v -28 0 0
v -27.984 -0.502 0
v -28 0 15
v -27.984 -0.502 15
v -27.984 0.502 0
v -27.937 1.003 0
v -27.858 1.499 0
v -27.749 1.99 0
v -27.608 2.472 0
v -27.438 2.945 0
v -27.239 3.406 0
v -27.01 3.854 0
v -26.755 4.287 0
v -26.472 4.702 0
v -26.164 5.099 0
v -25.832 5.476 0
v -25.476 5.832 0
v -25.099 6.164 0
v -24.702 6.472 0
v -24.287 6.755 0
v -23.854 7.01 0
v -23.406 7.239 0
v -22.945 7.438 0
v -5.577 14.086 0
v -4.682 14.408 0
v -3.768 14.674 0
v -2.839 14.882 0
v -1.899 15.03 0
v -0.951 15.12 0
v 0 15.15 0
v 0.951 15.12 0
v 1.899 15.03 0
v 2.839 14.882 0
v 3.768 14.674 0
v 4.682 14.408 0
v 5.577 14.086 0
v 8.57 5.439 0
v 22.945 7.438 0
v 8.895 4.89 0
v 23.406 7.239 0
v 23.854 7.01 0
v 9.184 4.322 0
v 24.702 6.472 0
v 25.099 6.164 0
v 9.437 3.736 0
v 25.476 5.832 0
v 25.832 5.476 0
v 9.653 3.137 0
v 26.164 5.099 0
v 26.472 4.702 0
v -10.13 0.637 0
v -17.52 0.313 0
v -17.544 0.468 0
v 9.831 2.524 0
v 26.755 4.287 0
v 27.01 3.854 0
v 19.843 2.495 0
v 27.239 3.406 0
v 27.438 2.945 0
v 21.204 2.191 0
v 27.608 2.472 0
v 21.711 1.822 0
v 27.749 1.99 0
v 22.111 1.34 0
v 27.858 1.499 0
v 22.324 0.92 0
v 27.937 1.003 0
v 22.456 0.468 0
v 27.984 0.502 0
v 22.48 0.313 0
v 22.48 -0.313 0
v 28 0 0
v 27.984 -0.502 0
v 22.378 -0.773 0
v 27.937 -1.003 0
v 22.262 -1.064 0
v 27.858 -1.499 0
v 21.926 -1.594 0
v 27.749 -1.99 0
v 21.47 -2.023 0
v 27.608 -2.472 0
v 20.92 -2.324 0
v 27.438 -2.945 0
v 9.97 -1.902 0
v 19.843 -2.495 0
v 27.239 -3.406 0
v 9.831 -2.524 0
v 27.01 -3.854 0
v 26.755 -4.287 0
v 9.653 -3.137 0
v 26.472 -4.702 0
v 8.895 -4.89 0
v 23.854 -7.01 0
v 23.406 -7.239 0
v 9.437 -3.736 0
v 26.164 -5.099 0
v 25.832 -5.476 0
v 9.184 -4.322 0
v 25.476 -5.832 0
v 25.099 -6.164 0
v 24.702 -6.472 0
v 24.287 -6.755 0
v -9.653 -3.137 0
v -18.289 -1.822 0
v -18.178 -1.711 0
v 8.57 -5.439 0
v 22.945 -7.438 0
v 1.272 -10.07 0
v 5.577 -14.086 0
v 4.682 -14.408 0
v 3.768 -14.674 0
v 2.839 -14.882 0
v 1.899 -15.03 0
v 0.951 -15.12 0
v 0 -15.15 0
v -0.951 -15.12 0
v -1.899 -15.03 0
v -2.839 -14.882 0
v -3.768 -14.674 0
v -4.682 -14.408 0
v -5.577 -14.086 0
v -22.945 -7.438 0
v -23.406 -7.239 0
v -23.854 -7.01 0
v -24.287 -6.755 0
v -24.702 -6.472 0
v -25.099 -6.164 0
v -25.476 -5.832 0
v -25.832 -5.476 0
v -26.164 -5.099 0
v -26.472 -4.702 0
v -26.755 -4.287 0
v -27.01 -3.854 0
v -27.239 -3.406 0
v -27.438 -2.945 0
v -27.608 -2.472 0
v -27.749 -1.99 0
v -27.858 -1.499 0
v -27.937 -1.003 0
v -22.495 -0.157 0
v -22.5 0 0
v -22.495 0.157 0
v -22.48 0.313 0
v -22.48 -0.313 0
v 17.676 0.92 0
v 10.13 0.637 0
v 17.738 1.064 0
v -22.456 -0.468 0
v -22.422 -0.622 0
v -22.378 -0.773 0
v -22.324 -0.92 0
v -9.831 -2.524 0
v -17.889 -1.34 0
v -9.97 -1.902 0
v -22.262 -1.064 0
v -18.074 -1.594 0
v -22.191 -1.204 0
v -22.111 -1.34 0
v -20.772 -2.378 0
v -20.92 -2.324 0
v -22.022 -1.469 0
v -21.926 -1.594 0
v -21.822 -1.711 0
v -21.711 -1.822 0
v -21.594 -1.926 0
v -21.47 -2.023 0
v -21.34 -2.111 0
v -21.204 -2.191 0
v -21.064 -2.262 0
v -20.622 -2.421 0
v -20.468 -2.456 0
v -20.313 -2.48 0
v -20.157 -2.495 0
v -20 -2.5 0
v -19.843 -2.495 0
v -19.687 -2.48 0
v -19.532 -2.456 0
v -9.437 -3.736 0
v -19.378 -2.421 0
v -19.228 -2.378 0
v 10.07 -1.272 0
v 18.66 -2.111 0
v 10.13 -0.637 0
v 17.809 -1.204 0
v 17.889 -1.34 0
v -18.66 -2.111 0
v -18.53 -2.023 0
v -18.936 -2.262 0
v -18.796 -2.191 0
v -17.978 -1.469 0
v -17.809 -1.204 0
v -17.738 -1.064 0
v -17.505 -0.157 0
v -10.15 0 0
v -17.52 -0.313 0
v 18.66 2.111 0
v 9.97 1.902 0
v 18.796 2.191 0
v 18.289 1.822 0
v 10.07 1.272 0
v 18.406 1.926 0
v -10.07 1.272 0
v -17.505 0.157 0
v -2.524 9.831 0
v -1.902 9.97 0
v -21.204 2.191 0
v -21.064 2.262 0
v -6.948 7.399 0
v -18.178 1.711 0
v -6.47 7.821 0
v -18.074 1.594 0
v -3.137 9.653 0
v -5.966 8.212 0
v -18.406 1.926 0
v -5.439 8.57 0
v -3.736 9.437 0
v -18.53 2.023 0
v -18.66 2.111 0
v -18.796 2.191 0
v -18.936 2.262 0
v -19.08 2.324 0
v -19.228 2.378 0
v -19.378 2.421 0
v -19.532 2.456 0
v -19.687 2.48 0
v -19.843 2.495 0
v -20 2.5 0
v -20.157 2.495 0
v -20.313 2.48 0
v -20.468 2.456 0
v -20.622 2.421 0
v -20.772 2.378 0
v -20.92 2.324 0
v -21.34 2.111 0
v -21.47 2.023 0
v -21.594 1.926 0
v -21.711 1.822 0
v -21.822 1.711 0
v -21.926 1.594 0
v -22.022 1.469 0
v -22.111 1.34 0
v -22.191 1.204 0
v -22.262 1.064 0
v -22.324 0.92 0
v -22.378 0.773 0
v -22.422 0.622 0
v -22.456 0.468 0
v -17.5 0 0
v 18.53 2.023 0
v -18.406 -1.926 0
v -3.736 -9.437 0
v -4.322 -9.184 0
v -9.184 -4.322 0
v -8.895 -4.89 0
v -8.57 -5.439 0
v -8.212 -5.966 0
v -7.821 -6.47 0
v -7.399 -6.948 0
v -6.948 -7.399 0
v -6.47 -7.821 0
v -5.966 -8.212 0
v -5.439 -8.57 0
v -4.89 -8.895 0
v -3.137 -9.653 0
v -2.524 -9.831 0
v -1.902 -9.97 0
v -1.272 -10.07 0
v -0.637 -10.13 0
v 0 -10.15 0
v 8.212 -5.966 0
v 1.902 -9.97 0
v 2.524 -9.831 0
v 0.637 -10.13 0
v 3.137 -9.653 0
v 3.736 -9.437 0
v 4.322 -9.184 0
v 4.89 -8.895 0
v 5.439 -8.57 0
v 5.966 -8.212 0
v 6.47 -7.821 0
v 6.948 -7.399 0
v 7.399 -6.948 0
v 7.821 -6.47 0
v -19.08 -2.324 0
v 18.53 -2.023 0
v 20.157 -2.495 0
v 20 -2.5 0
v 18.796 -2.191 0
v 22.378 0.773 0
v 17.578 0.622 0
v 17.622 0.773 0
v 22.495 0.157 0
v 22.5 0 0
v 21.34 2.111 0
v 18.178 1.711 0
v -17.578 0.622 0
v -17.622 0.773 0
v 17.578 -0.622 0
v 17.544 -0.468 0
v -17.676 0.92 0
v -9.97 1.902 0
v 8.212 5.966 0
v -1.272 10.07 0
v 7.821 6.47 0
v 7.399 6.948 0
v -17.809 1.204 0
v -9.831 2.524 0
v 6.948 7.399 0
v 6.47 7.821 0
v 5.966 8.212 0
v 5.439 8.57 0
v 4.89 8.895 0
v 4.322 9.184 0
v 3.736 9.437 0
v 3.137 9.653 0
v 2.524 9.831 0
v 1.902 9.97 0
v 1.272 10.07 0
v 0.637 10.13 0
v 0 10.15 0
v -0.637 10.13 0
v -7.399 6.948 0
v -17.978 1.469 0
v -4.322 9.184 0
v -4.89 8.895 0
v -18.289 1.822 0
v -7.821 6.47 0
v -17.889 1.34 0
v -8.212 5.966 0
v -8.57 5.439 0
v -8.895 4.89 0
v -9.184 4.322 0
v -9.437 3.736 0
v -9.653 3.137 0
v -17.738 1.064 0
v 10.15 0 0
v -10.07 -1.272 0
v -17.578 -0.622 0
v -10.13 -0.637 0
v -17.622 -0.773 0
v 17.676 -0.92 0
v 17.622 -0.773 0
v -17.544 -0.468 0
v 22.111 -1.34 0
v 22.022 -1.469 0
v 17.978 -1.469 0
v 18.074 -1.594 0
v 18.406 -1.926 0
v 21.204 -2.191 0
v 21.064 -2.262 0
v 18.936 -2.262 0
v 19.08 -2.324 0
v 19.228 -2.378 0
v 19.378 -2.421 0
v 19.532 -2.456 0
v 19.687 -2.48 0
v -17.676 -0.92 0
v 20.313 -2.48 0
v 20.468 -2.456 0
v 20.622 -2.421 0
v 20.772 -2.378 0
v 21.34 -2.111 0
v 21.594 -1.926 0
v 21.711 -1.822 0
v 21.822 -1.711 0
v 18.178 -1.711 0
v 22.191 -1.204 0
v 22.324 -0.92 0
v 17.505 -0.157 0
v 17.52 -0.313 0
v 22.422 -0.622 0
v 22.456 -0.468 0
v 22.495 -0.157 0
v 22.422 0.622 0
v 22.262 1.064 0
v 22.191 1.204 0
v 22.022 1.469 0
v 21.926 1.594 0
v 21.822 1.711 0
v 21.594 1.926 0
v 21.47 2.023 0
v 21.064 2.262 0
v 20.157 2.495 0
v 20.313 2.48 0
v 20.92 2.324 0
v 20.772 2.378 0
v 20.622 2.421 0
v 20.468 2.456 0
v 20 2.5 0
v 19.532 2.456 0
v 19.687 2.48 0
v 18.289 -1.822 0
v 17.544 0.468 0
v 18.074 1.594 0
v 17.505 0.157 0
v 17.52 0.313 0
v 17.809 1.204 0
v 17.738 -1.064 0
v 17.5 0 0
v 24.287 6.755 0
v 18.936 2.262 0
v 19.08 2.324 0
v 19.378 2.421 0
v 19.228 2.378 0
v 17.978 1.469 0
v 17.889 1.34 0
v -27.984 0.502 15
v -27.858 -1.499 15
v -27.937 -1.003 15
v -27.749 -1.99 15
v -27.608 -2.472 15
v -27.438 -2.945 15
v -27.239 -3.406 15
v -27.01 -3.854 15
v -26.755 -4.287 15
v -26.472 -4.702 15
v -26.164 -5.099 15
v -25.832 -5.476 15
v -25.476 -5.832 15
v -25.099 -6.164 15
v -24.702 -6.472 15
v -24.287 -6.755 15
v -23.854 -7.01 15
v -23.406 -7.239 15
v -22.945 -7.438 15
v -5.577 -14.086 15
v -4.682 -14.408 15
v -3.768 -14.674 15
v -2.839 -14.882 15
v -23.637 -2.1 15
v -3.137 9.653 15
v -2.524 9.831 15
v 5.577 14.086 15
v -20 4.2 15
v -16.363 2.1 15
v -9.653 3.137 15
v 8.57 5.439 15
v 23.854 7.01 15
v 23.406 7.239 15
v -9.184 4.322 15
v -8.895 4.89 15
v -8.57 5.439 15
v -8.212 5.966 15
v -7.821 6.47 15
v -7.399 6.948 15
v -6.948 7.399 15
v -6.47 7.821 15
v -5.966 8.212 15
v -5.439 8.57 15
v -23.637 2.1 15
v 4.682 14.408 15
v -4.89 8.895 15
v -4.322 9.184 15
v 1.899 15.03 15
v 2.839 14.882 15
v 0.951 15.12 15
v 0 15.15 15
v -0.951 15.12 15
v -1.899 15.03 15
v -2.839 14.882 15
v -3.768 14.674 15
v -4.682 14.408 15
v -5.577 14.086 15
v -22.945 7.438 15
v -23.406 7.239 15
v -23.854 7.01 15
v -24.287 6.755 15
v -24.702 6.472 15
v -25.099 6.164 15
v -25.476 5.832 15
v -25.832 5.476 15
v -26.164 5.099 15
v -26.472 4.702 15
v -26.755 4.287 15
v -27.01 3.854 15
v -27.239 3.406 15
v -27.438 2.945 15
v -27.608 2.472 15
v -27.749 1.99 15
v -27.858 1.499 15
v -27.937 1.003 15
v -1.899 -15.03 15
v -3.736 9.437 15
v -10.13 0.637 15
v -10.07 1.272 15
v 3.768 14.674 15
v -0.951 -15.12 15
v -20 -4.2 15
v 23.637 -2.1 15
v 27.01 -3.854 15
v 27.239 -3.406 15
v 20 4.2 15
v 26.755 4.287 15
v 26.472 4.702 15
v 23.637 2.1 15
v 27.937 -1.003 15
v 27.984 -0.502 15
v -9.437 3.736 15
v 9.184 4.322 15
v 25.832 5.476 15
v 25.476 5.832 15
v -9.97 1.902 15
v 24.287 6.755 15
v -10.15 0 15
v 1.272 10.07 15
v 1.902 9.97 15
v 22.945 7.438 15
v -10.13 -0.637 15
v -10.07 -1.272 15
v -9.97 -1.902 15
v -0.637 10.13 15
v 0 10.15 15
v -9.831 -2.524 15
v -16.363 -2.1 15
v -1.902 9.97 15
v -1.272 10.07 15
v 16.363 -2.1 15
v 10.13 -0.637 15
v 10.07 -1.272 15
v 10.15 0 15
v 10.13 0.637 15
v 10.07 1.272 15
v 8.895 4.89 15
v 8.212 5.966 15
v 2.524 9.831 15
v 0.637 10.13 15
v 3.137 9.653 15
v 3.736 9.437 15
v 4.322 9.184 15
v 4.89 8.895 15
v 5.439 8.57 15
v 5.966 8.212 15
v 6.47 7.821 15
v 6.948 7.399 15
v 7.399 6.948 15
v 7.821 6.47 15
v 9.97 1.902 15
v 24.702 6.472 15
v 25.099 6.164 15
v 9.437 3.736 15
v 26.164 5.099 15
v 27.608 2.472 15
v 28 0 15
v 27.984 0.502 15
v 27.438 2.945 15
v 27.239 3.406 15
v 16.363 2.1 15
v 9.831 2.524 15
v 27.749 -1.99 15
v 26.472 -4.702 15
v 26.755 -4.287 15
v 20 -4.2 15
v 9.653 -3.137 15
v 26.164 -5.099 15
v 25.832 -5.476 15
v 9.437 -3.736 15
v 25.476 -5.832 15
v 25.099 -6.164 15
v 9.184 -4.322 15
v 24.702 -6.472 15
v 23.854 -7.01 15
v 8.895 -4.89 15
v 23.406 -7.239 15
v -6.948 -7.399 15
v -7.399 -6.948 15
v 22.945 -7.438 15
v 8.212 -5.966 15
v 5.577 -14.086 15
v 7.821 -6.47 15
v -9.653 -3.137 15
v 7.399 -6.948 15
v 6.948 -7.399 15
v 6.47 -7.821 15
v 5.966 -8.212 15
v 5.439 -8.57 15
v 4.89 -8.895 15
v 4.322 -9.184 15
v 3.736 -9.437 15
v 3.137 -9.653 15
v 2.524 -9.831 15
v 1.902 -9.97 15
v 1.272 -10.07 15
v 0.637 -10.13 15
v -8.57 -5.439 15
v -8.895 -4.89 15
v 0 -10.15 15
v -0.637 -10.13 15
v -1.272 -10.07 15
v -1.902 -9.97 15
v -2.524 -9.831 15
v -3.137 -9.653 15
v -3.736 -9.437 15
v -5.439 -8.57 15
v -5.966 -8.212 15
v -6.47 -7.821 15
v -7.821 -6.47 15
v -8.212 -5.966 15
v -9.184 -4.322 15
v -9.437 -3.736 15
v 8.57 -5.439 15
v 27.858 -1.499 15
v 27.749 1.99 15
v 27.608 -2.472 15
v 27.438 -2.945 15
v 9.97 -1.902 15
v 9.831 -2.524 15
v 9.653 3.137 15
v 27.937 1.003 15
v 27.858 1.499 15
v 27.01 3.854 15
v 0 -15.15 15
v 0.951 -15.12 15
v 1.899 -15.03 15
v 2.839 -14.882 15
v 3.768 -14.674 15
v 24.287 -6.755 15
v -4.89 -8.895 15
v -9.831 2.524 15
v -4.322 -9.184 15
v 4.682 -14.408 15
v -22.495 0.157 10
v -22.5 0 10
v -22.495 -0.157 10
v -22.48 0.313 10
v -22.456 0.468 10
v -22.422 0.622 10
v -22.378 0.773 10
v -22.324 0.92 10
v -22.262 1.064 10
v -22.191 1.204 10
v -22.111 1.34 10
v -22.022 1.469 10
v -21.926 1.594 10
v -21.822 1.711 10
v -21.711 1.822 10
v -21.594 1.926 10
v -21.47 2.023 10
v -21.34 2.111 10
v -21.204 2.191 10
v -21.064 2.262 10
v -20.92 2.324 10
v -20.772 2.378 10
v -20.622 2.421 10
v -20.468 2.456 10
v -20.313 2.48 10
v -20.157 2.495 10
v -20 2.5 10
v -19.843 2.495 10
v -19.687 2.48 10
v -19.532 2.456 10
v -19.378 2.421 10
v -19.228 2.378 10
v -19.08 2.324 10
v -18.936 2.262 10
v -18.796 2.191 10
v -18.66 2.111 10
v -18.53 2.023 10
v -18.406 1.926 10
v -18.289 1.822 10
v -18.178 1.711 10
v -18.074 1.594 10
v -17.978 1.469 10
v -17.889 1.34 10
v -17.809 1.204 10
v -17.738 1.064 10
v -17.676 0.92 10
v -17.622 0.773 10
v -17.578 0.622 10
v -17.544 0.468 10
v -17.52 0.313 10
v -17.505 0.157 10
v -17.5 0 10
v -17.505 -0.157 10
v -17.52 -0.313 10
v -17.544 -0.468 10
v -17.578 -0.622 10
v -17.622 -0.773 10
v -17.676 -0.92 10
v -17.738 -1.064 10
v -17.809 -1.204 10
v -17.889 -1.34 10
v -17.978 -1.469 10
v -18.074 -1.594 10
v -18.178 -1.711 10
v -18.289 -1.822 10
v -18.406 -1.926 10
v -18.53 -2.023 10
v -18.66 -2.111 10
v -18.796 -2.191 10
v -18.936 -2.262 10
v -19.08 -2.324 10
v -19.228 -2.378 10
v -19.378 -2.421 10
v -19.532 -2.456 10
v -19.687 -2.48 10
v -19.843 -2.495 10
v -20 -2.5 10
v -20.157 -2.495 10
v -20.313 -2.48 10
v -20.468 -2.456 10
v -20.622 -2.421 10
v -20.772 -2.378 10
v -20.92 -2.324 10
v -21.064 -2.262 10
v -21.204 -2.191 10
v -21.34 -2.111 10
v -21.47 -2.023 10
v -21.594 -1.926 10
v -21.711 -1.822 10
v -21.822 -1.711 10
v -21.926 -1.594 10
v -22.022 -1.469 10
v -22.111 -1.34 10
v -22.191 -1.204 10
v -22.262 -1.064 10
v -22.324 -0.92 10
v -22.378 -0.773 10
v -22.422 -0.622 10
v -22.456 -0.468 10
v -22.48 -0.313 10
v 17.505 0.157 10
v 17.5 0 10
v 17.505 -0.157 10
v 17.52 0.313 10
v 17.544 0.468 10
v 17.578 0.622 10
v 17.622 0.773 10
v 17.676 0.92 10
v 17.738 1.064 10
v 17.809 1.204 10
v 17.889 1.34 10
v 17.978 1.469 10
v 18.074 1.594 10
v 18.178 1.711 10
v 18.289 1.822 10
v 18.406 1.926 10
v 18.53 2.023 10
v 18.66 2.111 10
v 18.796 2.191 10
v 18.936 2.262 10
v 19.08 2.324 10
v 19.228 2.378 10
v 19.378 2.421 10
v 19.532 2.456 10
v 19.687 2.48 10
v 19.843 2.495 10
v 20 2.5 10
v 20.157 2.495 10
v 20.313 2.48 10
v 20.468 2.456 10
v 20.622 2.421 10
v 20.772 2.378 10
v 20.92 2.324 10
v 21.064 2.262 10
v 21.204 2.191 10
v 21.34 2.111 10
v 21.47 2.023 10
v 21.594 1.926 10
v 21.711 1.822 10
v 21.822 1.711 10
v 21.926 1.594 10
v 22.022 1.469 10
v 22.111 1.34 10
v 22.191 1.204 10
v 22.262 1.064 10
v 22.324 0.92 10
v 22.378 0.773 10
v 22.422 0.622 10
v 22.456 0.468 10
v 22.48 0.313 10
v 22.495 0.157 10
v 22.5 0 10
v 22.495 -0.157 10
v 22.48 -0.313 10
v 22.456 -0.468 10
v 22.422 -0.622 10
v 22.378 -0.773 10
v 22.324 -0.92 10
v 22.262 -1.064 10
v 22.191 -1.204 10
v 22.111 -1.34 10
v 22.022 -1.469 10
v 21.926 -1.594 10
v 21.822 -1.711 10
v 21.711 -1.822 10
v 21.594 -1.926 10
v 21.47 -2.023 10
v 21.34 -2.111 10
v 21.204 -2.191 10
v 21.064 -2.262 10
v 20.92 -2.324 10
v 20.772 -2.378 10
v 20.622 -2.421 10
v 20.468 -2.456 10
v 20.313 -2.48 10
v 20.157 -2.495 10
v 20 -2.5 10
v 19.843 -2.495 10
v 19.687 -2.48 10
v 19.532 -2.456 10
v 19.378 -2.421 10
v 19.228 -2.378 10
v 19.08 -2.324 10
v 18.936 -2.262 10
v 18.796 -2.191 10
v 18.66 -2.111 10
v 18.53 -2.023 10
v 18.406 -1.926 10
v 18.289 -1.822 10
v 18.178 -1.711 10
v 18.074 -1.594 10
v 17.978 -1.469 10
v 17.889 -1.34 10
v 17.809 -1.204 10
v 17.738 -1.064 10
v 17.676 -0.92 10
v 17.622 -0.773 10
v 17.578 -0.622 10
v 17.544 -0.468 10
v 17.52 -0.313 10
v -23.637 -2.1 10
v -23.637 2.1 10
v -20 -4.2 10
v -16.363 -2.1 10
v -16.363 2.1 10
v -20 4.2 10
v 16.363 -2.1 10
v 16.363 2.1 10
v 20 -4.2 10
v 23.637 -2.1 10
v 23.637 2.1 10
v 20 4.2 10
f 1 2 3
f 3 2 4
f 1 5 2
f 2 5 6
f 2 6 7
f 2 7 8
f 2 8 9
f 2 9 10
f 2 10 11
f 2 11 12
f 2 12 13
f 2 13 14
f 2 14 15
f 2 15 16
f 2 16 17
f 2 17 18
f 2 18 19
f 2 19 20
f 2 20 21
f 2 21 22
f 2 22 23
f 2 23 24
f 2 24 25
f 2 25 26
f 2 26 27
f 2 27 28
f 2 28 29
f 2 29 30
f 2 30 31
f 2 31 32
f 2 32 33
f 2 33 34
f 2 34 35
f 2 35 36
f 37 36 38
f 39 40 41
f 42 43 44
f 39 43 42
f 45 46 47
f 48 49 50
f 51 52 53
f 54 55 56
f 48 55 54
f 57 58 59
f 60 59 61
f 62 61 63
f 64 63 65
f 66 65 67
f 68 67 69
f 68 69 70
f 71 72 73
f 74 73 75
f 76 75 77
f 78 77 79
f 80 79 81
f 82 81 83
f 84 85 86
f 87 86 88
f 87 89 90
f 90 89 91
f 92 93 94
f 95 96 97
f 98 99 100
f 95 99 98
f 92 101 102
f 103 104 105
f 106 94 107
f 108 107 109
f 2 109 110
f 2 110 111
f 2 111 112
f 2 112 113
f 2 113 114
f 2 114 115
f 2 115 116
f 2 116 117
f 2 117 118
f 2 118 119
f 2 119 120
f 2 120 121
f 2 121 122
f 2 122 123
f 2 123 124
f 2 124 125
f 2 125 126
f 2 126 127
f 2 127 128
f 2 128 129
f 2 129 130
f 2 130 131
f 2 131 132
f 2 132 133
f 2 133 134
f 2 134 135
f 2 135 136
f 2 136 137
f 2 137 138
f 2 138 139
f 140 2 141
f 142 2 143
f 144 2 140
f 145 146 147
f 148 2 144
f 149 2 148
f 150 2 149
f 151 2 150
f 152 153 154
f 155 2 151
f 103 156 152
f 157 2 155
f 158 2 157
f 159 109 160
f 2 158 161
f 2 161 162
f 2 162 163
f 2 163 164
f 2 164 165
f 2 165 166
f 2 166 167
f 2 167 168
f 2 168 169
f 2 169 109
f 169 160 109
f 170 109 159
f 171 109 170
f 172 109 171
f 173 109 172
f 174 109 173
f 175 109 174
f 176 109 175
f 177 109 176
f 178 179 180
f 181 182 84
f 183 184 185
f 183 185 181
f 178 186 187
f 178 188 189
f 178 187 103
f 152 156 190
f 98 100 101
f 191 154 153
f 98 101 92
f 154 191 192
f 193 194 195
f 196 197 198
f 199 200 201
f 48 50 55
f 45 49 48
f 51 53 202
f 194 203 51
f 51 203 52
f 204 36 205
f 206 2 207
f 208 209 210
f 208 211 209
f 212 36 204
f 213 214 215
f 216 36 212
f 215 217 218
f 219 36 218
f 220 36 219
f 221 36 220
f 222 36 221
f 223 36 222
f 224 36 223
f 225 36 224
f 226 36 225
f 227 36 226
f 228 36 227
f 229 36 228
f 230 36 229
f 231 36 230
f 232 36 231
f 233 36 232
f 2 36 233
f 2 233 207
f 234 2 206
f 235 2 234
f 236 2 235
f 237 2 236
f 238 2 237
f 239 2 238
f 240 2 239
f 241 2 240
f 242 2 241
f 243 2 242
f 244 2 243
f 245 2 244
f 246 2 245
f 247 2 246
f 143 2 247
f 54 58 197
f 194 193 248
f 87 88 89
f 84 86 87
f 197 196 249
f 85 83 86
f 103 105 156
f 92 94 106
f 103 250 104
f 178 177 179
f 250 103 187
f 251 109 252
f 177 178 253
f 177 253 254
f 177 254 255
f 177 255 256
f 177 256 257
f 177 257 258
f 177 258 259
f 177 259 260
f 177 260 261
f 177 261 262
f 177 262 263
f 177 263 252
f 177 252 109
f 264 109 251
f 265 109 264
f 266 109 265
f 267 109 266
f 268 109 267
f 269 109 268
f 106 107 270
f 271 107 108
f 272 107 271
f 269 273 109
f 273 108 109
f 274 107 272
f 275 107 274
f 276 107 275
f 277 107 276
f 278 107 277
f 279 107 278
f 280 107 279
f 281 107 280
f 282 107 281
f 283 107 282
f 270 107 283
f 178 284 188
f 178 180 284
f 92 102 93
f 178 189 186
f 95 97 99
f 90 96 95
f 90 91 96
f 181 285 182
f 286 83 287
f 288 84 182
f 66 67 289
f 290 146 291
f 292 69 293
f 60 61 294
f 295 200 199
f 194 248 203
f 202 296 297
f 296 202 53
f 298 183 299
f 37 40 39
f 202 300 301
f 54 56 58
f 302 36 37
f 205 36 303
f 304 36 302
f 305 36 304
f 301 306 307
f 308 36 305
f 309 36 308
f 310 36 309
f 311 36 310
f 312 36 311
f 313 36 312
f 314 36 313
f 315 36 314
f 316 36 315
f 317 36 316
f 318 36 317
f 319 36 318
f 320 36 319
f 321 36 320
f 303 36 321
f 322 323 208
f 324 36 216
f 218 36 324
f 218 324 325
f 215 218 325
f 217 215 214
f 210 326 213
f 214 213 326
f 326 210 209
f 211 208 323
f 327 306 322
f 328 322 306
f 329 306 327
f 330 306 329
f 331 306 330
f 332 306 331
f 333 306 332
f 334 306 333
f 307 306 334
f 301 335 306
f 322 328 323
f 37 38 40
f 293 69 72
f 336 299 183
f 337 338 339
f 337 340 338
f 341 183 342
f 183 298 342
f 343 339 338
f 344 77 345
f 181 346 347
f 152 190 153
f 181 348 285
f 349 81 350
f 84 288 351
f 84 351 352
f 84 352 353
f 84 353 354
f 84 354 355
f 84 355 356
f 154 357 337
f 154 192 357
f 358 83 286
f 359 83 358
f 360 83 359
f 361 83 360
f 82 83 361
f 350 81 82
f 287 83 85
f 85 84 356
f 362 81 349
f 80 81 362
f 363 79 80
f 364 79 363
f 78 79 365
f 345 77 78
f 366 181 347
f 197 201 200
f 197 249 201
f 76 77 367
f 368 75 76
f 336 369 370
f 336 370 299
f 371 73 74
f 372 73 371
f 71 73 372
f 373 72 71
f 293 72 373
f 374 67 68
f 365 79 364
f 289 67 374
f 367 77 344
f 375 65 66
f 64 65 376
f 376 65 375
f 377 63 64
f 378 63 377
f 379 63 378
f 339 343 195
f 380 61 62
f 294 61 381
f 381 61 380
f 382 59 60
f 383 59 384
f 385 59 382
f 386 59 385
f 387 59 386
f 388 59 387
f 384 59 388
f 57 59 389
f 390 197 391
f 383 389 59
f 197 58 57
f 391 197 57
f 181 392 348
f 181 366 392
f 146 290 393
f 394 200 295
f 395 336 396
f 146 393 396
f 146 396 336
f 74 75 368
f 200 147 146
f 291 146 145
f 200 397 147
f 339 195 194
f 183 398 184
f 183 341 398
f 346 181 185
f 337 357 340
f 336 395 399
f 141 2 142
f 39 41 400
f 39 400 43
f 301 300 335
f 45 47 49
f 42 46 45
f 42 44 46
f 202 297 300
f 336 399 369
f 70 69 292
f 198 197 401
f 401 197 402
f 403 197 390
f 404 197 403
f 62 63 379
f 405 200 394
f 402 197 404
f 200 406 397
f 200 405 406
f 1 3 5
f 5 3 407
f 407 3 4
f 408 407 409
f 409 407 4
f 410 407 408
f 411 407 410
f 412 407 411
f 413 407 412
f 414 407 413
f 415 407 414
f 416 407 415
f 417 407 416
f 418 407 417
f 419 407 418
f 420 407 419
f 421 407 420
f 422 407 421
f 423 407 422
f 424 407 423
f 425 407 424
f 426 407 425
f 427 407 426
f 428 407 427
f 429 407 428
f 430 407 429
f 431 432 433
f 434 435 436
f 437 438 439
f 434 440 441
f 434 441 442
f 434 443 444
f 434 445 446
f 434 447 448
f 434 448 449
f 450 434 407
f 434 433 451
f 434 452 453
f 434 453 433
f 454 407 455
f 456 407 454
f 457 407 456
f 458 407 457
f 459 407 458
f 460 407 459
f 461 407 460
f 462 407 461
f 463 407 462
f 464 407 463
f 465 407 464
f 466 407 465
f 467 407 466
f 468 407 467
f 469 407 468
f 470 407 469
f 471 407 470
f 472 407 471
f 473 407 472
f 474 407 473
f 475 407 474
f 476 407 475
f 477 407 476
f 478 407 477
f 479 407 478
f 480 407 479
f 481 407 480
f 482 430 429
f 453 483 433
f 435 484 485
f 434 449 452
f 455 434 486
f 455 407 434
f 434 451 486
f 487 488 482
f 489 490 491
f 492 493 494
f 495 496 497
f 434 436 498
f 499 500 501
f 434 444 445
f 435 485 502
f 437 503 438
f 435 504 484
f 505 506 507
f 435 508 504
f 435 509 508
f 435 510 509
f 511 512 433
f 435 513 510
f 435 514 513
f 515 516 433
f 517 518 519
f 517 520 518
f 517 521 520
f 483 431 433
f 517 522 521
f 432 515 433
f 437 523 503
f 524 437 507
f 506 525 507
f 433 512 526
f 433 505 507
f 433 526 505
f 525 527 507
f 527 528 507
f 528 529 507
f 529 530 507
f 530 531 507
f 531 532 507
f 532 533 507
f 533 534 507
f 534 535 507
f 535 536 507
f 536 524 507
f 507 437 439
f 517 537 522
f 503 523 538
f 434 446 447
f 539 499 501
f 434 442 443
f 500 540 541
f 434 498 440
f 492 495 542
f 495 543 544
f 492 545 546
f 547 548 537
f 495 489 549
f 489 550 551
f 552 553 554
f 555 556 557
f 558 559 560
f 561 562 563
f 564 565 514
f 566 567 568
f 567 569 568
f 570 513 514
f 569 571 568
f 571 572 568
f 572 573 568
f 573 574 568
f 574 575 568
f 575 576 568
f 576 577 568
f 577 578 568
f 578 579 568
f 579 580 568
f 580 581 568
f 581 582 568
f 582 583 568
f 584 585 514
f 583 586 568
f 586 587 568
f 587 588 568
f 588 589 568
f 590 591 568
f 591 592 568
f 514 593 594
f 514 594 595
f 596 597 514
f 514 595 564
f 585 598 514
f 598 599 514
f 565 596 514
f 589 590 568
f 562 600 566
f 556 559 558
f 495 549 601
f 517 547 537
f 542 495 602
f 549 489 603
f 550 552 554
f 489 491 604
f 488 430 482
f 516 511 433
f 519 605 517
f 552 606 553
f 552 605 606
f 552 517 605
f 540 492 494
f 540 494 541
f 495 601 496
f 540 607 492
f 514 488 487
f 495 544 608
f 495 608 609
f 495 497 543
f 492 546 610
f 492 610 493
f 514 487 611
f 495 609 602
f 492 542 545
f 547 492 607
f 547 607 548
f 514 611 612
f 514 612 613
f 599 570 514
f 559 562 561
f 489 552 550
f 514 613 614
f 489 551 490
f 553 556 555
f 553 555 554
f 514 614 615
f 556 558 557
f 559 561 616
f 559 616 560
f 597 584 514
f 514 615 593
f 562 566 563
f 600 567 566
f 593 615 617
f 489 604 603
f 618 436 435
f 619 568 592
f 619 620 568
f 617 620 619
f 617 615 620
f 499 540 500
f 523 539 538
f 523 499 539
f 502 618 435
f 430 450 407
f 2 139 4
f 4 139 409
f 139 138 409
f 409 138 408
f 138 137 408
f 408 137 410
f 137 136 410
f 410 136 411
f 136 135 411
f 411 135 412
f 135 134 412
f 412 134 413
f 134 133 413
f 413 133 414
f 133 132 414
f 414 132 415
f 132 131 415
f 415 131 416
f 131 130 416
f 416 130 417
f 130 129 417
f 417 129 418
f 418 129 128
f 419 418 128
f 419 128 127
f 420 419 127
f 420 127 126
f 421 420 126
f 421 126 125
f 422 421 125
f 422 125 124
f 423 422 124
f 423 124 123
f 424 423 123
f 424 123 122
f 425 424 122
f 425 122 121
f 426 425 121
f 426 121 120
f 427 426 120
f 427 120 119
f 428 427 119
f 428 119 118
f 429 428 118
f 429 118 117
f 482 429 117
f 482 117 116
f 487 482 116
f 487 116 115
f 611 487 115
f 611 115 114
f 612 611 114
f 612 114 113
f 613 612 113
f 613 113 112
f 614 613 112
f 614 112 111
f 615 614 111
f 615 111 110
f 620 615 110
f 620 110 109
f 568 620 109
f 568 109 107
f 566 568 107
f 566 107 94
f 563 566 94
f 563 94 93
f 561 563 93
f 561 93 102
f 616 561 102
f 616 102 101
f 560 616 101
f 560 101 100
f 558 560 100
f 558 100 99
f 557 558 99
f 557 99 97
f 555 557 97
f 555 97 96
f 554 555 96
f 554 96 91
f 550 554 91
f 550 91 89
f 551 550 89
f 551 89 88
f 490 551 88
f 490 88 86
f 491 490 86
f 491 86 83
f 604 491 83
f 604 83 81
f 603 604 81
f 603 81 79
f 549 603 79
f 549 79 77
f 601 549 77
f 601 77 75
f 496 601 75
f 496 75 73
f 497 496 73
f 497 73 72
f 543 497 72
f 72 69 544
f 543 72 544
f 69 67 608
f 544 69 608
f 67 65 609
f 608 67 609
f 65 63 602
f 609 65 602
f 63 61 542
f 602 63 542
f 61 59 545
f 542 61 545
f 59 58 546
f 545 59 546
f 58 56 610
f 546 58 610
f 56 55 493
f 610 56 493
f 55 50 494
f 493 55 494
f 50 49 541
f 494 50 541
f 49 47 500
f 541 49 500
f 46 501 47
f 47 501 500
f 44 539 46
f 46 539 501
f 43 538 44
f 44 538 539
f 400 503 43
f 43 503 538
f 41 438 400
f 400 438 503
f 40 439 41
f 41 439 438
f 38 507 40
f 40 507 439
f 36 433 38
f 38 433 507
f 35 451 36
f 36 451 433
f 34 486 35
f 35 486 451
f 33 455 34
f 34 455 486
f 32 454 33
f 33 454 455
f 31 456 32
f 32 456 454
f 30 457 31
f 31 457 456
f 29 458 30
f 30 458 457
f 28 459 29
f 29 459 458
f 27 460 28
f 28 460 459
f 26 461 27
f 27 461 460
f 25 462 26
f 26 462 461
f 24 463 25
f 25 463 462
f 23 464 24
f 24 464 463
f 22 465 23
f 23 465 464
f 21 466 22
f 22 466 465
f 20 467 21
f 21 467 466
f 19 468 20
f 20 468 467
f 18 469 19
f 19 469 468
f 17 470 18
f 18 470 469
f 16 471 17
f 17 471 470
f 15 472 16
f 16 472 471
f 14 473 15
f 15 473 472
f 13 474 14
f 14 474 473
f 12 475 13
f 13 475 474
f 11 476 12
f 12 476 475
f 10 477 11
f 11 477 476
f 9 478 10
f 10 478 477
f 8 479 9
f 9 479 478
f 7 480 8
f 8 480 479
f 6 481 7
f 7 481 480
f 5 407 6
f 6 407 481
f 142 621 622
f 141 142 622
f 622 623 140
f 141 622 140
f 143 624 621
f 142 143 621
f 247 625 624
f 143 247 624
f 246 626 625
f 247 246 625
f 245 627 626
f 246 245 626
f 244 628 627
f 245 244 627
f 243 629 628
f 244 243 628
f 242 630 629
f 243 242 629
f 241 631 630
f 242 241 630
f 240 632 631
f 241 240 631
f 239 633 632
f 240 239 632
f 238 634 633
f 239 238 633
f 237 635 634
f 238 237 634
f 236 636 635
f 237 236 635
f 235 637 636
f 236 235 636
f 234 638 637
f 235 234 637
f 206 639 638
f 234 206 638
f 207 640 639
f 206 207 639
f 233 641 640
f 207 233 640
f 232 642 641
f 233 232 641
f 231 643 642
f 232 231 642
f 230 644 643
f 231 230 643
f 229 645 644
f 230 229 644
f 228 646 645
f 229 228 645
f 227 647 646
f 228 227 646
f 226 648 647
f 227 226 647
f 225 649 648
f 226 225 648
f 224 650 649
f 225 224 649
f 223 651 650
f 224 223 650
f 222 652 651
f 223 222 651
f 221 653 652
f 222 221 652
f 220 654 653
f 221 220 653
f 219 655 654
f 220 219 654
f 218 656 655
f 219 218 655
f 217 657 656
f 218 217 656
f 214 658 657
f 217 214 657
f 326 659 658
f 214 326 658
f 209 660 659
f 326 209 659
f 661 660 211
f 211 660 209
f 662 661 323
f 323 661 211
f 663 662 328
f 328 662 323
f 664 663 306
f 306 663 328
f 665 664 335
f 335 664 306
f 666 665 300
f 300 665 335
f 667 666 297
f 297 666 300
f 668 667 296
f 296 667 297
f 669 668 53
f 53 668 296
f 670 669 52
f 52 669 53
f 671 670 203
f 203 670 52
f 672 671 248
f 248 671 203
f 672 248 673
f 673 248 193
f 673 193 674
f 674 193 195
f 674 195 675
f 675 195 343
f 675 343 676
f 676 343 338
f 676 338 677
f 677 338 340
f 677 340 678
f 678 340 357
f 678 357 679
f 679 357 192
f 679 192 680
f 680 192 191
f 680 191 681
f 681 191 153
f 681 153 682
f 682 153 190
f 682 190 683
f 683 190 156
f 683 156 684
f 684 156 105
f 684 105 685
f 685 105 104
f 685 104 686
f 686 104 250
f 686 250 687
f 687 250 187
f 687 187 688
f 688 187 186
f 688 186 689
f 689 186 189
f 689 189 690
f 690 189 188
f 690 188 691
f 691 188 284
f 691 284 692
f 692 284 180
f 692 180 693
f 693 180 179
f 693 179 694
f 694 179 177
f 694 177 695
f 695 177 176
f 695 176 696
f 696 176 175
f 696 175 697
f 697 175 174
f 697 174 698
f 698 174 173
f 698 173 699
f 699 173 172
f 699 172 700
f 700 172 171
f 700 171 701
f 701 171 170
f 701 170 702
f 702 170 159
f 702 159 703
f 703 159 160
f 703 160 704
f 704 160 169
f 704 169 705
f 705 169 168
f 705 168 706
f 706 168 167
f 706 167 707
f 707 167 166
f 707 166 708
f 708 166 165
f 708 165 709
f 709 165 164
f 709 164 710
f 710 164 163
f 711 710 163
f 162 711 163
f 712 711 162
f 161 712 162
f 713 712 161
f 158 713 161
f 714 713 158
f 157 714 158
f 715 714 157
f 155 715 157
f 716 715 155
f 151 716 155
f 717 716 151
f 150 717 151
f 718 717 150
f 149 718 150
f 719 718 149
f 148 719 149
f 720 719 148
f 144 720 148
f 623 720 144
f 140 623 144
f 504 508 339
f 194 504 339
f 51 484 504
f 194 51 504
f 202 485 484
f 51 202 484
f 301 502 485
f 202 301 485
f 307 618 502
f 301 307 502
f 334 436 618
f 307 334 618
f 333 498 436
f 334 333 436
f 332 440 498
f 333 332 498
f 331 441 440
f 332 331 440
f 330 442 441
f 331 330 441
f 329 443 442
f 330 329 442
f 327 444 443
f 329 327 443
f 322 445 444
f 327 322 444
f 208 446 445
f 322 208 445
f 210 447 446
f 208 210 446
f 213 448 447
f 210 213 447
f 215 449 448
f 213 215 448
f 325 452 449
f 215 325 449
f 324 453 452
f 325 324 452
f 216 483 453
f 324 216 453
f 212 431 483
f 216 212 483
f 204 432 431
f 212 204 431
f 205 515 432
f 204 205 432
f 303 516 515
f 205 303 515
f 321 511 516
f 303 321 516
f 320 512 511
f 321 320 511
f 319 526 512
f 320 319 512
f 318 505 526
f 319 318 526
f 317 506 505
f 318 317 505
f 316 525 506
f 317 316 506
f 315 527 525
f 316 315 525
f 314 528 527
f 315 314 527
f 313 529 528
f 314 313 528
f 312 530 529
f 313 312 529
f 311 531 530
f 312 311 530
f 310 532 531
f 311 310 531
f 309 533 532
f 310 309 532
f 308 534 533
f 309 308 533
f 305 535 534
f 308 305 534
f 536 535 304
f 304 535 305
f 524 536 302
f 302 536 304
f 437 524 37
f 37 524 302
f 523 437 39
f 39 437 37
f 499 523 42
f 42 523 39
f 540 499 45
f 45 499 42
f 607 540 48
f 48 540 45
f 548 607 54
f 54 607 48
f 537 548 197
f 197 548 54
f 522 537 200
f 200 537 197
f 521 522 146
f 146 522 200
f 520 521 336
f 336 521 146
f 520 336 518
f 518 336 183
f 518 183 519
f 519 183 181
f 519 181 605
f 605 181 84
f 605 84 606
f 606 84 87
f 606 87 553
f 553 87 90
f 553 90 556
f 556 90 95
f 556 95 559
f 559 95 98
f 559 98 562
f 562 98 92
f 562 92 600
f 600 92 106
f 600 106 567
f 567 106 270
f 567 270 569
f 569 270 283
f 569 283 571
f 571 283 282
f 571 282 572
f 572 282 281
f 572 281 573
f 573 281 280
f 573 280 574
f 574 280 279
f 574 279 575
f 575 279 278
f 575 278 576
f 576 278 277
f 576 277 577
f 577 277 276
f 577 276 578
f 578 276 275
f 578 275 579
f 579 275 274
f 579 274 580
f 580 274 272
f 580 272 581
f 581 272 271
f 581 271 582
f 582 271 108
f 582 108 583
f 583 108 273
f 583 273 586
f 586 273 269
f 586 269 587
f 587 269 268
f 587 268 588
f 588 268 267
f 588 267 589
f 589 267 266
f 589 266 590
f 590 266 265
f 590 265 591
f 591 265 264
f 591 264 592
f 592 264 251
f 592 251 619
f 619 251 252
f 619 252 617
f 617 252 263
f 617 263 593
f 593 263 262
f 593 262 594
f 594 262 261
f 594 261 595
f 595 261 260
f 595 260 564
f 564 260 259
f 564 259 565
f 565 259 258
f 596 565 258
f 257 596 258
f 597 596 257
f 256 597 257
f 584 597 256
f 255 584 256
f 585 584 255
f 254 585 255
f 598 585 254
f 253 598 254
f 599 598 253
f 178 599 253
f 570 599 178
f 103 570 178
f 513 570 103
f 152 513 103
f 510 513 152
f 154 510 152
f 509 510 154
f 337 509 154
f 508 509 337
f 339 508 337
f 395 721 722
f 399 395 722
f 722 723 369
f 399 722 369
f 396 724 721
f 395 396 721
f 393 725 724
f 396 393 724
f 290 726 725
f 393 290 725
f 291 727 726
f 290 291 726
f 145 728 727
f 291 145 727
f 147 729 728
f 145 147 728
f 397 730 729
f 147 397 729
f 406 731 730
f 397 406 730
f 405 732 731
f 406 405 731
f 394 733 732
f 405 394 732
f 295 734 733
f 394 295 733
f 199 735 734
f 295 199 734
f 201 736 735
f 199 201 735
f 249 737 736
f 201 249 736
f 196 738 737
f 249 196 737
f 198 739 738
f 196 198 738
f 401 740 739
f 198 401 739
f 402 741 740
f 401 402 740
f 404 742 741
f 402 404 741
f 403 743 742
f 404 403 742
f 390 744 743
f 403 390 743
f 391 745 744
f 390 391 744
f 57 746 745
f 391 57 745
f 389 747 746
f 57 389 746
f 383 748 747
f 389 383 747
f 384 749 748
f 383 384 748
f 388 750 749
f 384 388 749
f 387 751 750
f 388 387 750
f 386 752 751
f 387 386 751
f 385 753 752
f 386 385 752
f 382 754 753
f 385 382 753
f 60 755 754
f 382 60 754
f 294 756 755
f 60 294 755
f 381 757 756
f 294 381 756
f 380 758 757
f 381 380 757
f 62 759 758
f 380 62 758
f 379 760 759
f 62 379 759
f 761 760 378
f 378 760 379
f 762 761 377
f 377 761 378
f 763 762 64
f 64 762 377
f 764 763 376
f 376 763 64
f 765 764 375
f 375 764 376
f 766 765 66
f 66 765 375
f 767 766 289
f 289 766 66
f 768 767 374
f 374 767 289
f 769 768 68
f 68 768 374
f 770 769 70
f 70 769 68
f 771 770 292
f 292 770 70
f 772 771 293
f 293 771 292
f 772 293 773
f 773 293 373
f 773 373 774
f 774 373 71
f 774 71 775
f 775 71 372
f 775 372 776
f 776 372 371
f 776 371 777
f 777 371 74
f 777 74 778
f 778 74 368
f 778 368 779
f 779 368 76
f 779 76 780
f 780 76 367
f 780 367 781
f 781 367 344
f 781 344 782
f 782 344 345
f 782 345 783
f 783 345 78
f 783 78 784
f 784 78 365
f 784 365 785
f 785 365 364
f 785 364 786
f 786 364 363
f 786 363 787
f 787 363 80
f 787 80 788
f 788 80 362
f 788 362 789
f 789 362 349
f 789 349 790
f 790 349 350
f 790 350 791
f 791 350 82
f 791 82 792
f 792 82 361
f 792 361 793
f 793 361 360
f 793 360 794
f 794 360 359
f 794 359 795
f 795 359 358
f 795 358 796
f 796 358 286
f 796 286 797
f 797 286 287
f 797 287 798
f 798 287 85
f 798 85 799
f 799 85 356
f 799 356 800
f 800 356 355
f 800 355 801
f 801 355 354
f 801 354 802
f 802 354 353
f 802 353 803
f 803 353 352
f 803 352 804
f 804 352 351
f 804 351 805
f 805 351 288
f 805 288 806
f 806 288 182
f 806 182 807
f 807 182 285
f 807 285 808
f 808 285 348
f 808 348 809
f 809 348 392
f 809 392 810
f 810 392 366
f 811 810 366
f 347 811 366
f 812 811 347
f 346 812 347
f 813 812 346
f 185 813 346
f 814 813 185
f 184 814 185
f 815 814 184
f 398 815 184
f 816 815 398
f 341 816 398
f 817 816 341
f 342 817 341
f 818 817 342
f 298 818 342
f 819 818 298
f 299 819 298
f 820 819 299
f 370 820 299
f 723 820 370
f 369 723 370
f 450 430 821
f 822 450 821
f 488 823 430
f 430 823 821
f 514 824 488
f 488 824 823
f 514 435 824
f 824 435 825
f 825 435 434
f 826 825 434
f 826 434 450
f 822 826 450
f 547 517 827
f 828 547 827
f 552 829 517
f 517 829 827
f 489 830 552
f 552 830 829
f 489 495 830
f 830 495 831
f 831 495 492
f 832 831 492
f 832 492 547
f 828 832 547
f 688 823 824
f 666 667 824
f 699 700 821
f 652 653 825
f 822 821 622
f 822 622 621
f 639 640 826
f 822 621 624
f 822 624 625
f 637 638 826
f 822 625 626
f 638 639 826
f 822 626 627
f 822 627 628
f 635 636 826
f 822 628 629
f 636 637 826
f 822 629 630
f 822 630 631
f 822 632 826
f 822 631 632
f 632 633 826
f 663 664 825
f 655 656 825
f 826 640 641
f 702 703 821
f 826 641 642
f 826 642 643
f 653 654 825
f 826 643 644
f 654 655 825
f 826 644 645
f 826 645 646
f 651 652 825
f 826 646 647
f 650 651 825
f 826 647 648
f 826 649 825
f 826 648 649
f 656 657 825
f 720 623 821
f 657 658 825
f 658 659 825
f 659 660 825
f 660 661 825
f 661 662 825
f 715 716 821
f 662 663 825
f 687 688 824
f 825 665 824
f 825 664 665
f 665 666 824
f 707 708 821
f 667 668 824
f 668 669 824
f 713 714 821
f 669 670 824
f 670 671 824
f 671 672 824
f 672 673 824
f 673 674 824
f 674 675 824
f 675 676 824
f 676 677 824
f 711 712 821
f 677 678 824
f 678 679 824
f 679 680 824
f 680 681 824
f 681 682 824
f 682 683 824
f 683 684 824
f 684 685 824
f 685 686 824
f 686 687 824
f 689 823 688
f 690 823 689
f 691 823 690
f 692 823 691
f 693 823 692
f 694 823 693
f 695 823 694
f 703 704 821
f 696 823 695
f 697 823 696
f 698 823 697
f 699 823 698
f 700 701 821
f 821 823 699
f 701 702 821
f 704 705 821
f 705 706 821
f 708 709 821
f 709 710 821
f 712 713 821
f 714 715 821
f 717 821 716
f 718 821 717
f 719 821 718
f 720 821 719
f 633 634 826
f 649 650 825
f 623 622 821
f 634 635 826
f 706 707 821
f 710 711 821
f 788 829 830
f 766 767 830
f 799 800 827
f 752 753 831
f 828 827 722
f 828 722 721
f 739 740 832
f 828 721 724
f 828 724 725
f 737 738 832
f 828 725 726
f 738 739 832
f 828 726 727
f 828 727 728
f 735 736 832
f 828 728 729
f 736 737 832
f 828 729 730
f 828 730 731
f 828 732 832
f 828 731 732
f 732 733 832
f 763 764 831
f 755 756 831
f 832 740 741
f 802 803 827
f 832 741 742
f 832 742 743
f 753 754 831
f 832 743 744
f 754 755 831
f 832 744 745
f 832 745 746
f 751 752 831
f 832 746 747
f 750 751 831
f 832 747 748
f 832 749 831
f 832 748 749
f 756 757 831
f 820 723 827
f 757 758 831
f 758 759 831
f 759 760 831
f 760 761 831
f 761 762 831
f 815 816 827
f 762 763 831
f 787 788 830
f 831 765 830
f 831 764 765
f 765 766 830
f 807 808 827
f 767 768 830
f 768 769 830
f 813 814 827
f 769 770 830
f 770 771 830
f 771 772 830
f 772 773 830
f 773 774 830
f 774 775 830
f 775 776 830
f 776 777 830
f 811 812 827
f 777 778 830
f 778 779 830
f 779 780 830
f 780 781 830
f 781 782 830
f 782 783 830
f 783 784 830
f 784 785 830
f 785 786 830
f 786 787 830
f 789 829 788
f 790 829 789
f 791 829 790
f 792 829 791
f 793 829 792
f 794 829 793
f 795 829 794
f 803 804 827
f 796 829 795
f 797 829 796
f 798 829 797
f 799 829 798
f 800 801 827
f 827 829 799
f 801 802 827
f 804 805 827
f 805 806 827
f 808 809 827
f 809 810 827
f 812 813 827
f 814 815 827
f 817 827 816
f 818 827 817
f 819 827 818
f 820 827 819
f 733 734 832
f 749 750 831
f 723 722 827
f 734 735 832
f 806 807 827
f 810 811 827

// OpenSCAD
r_tige=10.15;
r_cote=8;
r_m3=2.5;
r_ecrou_m3=4.2;
ecart=20;
hauteur=15;

module support_axe_y(){
	difference(){
		hull(){
			cylinder(h=hauteur, r=r_tige+5, $fn=100);
			translate([ecart,0,0]){cylinder(h=hauteur, r=r_cote, $fn=100);}
			translate([-ecart,0,0]){cylinder(h=hauteur, r=r_cote, $fn=100);}
		}
		translate([0,0,-5]){cylinder(h=hauteur+10, r=r_tige, $fn=100);}
		translate([ecart,0,-5]){cylinder(h=hauteur+10, r=r_m3, $fn=100);}
		translate([-ecart,0,-5]){cylinder(h=hauteur+10, r=r_m3, $fn=100);}

		translate([ecart,0,hauteur-5]){rotate([0,0,30])cylinder(h=hauteur, r=r_ecrou_m3, $fn=6);}
		translate([-ecart,0,hauteur-5]){rotate([0,0,30])cylinder(h=hauteur, r=r_ecrou_m3, $fn=6);}
	}

}

support_axe_y();
